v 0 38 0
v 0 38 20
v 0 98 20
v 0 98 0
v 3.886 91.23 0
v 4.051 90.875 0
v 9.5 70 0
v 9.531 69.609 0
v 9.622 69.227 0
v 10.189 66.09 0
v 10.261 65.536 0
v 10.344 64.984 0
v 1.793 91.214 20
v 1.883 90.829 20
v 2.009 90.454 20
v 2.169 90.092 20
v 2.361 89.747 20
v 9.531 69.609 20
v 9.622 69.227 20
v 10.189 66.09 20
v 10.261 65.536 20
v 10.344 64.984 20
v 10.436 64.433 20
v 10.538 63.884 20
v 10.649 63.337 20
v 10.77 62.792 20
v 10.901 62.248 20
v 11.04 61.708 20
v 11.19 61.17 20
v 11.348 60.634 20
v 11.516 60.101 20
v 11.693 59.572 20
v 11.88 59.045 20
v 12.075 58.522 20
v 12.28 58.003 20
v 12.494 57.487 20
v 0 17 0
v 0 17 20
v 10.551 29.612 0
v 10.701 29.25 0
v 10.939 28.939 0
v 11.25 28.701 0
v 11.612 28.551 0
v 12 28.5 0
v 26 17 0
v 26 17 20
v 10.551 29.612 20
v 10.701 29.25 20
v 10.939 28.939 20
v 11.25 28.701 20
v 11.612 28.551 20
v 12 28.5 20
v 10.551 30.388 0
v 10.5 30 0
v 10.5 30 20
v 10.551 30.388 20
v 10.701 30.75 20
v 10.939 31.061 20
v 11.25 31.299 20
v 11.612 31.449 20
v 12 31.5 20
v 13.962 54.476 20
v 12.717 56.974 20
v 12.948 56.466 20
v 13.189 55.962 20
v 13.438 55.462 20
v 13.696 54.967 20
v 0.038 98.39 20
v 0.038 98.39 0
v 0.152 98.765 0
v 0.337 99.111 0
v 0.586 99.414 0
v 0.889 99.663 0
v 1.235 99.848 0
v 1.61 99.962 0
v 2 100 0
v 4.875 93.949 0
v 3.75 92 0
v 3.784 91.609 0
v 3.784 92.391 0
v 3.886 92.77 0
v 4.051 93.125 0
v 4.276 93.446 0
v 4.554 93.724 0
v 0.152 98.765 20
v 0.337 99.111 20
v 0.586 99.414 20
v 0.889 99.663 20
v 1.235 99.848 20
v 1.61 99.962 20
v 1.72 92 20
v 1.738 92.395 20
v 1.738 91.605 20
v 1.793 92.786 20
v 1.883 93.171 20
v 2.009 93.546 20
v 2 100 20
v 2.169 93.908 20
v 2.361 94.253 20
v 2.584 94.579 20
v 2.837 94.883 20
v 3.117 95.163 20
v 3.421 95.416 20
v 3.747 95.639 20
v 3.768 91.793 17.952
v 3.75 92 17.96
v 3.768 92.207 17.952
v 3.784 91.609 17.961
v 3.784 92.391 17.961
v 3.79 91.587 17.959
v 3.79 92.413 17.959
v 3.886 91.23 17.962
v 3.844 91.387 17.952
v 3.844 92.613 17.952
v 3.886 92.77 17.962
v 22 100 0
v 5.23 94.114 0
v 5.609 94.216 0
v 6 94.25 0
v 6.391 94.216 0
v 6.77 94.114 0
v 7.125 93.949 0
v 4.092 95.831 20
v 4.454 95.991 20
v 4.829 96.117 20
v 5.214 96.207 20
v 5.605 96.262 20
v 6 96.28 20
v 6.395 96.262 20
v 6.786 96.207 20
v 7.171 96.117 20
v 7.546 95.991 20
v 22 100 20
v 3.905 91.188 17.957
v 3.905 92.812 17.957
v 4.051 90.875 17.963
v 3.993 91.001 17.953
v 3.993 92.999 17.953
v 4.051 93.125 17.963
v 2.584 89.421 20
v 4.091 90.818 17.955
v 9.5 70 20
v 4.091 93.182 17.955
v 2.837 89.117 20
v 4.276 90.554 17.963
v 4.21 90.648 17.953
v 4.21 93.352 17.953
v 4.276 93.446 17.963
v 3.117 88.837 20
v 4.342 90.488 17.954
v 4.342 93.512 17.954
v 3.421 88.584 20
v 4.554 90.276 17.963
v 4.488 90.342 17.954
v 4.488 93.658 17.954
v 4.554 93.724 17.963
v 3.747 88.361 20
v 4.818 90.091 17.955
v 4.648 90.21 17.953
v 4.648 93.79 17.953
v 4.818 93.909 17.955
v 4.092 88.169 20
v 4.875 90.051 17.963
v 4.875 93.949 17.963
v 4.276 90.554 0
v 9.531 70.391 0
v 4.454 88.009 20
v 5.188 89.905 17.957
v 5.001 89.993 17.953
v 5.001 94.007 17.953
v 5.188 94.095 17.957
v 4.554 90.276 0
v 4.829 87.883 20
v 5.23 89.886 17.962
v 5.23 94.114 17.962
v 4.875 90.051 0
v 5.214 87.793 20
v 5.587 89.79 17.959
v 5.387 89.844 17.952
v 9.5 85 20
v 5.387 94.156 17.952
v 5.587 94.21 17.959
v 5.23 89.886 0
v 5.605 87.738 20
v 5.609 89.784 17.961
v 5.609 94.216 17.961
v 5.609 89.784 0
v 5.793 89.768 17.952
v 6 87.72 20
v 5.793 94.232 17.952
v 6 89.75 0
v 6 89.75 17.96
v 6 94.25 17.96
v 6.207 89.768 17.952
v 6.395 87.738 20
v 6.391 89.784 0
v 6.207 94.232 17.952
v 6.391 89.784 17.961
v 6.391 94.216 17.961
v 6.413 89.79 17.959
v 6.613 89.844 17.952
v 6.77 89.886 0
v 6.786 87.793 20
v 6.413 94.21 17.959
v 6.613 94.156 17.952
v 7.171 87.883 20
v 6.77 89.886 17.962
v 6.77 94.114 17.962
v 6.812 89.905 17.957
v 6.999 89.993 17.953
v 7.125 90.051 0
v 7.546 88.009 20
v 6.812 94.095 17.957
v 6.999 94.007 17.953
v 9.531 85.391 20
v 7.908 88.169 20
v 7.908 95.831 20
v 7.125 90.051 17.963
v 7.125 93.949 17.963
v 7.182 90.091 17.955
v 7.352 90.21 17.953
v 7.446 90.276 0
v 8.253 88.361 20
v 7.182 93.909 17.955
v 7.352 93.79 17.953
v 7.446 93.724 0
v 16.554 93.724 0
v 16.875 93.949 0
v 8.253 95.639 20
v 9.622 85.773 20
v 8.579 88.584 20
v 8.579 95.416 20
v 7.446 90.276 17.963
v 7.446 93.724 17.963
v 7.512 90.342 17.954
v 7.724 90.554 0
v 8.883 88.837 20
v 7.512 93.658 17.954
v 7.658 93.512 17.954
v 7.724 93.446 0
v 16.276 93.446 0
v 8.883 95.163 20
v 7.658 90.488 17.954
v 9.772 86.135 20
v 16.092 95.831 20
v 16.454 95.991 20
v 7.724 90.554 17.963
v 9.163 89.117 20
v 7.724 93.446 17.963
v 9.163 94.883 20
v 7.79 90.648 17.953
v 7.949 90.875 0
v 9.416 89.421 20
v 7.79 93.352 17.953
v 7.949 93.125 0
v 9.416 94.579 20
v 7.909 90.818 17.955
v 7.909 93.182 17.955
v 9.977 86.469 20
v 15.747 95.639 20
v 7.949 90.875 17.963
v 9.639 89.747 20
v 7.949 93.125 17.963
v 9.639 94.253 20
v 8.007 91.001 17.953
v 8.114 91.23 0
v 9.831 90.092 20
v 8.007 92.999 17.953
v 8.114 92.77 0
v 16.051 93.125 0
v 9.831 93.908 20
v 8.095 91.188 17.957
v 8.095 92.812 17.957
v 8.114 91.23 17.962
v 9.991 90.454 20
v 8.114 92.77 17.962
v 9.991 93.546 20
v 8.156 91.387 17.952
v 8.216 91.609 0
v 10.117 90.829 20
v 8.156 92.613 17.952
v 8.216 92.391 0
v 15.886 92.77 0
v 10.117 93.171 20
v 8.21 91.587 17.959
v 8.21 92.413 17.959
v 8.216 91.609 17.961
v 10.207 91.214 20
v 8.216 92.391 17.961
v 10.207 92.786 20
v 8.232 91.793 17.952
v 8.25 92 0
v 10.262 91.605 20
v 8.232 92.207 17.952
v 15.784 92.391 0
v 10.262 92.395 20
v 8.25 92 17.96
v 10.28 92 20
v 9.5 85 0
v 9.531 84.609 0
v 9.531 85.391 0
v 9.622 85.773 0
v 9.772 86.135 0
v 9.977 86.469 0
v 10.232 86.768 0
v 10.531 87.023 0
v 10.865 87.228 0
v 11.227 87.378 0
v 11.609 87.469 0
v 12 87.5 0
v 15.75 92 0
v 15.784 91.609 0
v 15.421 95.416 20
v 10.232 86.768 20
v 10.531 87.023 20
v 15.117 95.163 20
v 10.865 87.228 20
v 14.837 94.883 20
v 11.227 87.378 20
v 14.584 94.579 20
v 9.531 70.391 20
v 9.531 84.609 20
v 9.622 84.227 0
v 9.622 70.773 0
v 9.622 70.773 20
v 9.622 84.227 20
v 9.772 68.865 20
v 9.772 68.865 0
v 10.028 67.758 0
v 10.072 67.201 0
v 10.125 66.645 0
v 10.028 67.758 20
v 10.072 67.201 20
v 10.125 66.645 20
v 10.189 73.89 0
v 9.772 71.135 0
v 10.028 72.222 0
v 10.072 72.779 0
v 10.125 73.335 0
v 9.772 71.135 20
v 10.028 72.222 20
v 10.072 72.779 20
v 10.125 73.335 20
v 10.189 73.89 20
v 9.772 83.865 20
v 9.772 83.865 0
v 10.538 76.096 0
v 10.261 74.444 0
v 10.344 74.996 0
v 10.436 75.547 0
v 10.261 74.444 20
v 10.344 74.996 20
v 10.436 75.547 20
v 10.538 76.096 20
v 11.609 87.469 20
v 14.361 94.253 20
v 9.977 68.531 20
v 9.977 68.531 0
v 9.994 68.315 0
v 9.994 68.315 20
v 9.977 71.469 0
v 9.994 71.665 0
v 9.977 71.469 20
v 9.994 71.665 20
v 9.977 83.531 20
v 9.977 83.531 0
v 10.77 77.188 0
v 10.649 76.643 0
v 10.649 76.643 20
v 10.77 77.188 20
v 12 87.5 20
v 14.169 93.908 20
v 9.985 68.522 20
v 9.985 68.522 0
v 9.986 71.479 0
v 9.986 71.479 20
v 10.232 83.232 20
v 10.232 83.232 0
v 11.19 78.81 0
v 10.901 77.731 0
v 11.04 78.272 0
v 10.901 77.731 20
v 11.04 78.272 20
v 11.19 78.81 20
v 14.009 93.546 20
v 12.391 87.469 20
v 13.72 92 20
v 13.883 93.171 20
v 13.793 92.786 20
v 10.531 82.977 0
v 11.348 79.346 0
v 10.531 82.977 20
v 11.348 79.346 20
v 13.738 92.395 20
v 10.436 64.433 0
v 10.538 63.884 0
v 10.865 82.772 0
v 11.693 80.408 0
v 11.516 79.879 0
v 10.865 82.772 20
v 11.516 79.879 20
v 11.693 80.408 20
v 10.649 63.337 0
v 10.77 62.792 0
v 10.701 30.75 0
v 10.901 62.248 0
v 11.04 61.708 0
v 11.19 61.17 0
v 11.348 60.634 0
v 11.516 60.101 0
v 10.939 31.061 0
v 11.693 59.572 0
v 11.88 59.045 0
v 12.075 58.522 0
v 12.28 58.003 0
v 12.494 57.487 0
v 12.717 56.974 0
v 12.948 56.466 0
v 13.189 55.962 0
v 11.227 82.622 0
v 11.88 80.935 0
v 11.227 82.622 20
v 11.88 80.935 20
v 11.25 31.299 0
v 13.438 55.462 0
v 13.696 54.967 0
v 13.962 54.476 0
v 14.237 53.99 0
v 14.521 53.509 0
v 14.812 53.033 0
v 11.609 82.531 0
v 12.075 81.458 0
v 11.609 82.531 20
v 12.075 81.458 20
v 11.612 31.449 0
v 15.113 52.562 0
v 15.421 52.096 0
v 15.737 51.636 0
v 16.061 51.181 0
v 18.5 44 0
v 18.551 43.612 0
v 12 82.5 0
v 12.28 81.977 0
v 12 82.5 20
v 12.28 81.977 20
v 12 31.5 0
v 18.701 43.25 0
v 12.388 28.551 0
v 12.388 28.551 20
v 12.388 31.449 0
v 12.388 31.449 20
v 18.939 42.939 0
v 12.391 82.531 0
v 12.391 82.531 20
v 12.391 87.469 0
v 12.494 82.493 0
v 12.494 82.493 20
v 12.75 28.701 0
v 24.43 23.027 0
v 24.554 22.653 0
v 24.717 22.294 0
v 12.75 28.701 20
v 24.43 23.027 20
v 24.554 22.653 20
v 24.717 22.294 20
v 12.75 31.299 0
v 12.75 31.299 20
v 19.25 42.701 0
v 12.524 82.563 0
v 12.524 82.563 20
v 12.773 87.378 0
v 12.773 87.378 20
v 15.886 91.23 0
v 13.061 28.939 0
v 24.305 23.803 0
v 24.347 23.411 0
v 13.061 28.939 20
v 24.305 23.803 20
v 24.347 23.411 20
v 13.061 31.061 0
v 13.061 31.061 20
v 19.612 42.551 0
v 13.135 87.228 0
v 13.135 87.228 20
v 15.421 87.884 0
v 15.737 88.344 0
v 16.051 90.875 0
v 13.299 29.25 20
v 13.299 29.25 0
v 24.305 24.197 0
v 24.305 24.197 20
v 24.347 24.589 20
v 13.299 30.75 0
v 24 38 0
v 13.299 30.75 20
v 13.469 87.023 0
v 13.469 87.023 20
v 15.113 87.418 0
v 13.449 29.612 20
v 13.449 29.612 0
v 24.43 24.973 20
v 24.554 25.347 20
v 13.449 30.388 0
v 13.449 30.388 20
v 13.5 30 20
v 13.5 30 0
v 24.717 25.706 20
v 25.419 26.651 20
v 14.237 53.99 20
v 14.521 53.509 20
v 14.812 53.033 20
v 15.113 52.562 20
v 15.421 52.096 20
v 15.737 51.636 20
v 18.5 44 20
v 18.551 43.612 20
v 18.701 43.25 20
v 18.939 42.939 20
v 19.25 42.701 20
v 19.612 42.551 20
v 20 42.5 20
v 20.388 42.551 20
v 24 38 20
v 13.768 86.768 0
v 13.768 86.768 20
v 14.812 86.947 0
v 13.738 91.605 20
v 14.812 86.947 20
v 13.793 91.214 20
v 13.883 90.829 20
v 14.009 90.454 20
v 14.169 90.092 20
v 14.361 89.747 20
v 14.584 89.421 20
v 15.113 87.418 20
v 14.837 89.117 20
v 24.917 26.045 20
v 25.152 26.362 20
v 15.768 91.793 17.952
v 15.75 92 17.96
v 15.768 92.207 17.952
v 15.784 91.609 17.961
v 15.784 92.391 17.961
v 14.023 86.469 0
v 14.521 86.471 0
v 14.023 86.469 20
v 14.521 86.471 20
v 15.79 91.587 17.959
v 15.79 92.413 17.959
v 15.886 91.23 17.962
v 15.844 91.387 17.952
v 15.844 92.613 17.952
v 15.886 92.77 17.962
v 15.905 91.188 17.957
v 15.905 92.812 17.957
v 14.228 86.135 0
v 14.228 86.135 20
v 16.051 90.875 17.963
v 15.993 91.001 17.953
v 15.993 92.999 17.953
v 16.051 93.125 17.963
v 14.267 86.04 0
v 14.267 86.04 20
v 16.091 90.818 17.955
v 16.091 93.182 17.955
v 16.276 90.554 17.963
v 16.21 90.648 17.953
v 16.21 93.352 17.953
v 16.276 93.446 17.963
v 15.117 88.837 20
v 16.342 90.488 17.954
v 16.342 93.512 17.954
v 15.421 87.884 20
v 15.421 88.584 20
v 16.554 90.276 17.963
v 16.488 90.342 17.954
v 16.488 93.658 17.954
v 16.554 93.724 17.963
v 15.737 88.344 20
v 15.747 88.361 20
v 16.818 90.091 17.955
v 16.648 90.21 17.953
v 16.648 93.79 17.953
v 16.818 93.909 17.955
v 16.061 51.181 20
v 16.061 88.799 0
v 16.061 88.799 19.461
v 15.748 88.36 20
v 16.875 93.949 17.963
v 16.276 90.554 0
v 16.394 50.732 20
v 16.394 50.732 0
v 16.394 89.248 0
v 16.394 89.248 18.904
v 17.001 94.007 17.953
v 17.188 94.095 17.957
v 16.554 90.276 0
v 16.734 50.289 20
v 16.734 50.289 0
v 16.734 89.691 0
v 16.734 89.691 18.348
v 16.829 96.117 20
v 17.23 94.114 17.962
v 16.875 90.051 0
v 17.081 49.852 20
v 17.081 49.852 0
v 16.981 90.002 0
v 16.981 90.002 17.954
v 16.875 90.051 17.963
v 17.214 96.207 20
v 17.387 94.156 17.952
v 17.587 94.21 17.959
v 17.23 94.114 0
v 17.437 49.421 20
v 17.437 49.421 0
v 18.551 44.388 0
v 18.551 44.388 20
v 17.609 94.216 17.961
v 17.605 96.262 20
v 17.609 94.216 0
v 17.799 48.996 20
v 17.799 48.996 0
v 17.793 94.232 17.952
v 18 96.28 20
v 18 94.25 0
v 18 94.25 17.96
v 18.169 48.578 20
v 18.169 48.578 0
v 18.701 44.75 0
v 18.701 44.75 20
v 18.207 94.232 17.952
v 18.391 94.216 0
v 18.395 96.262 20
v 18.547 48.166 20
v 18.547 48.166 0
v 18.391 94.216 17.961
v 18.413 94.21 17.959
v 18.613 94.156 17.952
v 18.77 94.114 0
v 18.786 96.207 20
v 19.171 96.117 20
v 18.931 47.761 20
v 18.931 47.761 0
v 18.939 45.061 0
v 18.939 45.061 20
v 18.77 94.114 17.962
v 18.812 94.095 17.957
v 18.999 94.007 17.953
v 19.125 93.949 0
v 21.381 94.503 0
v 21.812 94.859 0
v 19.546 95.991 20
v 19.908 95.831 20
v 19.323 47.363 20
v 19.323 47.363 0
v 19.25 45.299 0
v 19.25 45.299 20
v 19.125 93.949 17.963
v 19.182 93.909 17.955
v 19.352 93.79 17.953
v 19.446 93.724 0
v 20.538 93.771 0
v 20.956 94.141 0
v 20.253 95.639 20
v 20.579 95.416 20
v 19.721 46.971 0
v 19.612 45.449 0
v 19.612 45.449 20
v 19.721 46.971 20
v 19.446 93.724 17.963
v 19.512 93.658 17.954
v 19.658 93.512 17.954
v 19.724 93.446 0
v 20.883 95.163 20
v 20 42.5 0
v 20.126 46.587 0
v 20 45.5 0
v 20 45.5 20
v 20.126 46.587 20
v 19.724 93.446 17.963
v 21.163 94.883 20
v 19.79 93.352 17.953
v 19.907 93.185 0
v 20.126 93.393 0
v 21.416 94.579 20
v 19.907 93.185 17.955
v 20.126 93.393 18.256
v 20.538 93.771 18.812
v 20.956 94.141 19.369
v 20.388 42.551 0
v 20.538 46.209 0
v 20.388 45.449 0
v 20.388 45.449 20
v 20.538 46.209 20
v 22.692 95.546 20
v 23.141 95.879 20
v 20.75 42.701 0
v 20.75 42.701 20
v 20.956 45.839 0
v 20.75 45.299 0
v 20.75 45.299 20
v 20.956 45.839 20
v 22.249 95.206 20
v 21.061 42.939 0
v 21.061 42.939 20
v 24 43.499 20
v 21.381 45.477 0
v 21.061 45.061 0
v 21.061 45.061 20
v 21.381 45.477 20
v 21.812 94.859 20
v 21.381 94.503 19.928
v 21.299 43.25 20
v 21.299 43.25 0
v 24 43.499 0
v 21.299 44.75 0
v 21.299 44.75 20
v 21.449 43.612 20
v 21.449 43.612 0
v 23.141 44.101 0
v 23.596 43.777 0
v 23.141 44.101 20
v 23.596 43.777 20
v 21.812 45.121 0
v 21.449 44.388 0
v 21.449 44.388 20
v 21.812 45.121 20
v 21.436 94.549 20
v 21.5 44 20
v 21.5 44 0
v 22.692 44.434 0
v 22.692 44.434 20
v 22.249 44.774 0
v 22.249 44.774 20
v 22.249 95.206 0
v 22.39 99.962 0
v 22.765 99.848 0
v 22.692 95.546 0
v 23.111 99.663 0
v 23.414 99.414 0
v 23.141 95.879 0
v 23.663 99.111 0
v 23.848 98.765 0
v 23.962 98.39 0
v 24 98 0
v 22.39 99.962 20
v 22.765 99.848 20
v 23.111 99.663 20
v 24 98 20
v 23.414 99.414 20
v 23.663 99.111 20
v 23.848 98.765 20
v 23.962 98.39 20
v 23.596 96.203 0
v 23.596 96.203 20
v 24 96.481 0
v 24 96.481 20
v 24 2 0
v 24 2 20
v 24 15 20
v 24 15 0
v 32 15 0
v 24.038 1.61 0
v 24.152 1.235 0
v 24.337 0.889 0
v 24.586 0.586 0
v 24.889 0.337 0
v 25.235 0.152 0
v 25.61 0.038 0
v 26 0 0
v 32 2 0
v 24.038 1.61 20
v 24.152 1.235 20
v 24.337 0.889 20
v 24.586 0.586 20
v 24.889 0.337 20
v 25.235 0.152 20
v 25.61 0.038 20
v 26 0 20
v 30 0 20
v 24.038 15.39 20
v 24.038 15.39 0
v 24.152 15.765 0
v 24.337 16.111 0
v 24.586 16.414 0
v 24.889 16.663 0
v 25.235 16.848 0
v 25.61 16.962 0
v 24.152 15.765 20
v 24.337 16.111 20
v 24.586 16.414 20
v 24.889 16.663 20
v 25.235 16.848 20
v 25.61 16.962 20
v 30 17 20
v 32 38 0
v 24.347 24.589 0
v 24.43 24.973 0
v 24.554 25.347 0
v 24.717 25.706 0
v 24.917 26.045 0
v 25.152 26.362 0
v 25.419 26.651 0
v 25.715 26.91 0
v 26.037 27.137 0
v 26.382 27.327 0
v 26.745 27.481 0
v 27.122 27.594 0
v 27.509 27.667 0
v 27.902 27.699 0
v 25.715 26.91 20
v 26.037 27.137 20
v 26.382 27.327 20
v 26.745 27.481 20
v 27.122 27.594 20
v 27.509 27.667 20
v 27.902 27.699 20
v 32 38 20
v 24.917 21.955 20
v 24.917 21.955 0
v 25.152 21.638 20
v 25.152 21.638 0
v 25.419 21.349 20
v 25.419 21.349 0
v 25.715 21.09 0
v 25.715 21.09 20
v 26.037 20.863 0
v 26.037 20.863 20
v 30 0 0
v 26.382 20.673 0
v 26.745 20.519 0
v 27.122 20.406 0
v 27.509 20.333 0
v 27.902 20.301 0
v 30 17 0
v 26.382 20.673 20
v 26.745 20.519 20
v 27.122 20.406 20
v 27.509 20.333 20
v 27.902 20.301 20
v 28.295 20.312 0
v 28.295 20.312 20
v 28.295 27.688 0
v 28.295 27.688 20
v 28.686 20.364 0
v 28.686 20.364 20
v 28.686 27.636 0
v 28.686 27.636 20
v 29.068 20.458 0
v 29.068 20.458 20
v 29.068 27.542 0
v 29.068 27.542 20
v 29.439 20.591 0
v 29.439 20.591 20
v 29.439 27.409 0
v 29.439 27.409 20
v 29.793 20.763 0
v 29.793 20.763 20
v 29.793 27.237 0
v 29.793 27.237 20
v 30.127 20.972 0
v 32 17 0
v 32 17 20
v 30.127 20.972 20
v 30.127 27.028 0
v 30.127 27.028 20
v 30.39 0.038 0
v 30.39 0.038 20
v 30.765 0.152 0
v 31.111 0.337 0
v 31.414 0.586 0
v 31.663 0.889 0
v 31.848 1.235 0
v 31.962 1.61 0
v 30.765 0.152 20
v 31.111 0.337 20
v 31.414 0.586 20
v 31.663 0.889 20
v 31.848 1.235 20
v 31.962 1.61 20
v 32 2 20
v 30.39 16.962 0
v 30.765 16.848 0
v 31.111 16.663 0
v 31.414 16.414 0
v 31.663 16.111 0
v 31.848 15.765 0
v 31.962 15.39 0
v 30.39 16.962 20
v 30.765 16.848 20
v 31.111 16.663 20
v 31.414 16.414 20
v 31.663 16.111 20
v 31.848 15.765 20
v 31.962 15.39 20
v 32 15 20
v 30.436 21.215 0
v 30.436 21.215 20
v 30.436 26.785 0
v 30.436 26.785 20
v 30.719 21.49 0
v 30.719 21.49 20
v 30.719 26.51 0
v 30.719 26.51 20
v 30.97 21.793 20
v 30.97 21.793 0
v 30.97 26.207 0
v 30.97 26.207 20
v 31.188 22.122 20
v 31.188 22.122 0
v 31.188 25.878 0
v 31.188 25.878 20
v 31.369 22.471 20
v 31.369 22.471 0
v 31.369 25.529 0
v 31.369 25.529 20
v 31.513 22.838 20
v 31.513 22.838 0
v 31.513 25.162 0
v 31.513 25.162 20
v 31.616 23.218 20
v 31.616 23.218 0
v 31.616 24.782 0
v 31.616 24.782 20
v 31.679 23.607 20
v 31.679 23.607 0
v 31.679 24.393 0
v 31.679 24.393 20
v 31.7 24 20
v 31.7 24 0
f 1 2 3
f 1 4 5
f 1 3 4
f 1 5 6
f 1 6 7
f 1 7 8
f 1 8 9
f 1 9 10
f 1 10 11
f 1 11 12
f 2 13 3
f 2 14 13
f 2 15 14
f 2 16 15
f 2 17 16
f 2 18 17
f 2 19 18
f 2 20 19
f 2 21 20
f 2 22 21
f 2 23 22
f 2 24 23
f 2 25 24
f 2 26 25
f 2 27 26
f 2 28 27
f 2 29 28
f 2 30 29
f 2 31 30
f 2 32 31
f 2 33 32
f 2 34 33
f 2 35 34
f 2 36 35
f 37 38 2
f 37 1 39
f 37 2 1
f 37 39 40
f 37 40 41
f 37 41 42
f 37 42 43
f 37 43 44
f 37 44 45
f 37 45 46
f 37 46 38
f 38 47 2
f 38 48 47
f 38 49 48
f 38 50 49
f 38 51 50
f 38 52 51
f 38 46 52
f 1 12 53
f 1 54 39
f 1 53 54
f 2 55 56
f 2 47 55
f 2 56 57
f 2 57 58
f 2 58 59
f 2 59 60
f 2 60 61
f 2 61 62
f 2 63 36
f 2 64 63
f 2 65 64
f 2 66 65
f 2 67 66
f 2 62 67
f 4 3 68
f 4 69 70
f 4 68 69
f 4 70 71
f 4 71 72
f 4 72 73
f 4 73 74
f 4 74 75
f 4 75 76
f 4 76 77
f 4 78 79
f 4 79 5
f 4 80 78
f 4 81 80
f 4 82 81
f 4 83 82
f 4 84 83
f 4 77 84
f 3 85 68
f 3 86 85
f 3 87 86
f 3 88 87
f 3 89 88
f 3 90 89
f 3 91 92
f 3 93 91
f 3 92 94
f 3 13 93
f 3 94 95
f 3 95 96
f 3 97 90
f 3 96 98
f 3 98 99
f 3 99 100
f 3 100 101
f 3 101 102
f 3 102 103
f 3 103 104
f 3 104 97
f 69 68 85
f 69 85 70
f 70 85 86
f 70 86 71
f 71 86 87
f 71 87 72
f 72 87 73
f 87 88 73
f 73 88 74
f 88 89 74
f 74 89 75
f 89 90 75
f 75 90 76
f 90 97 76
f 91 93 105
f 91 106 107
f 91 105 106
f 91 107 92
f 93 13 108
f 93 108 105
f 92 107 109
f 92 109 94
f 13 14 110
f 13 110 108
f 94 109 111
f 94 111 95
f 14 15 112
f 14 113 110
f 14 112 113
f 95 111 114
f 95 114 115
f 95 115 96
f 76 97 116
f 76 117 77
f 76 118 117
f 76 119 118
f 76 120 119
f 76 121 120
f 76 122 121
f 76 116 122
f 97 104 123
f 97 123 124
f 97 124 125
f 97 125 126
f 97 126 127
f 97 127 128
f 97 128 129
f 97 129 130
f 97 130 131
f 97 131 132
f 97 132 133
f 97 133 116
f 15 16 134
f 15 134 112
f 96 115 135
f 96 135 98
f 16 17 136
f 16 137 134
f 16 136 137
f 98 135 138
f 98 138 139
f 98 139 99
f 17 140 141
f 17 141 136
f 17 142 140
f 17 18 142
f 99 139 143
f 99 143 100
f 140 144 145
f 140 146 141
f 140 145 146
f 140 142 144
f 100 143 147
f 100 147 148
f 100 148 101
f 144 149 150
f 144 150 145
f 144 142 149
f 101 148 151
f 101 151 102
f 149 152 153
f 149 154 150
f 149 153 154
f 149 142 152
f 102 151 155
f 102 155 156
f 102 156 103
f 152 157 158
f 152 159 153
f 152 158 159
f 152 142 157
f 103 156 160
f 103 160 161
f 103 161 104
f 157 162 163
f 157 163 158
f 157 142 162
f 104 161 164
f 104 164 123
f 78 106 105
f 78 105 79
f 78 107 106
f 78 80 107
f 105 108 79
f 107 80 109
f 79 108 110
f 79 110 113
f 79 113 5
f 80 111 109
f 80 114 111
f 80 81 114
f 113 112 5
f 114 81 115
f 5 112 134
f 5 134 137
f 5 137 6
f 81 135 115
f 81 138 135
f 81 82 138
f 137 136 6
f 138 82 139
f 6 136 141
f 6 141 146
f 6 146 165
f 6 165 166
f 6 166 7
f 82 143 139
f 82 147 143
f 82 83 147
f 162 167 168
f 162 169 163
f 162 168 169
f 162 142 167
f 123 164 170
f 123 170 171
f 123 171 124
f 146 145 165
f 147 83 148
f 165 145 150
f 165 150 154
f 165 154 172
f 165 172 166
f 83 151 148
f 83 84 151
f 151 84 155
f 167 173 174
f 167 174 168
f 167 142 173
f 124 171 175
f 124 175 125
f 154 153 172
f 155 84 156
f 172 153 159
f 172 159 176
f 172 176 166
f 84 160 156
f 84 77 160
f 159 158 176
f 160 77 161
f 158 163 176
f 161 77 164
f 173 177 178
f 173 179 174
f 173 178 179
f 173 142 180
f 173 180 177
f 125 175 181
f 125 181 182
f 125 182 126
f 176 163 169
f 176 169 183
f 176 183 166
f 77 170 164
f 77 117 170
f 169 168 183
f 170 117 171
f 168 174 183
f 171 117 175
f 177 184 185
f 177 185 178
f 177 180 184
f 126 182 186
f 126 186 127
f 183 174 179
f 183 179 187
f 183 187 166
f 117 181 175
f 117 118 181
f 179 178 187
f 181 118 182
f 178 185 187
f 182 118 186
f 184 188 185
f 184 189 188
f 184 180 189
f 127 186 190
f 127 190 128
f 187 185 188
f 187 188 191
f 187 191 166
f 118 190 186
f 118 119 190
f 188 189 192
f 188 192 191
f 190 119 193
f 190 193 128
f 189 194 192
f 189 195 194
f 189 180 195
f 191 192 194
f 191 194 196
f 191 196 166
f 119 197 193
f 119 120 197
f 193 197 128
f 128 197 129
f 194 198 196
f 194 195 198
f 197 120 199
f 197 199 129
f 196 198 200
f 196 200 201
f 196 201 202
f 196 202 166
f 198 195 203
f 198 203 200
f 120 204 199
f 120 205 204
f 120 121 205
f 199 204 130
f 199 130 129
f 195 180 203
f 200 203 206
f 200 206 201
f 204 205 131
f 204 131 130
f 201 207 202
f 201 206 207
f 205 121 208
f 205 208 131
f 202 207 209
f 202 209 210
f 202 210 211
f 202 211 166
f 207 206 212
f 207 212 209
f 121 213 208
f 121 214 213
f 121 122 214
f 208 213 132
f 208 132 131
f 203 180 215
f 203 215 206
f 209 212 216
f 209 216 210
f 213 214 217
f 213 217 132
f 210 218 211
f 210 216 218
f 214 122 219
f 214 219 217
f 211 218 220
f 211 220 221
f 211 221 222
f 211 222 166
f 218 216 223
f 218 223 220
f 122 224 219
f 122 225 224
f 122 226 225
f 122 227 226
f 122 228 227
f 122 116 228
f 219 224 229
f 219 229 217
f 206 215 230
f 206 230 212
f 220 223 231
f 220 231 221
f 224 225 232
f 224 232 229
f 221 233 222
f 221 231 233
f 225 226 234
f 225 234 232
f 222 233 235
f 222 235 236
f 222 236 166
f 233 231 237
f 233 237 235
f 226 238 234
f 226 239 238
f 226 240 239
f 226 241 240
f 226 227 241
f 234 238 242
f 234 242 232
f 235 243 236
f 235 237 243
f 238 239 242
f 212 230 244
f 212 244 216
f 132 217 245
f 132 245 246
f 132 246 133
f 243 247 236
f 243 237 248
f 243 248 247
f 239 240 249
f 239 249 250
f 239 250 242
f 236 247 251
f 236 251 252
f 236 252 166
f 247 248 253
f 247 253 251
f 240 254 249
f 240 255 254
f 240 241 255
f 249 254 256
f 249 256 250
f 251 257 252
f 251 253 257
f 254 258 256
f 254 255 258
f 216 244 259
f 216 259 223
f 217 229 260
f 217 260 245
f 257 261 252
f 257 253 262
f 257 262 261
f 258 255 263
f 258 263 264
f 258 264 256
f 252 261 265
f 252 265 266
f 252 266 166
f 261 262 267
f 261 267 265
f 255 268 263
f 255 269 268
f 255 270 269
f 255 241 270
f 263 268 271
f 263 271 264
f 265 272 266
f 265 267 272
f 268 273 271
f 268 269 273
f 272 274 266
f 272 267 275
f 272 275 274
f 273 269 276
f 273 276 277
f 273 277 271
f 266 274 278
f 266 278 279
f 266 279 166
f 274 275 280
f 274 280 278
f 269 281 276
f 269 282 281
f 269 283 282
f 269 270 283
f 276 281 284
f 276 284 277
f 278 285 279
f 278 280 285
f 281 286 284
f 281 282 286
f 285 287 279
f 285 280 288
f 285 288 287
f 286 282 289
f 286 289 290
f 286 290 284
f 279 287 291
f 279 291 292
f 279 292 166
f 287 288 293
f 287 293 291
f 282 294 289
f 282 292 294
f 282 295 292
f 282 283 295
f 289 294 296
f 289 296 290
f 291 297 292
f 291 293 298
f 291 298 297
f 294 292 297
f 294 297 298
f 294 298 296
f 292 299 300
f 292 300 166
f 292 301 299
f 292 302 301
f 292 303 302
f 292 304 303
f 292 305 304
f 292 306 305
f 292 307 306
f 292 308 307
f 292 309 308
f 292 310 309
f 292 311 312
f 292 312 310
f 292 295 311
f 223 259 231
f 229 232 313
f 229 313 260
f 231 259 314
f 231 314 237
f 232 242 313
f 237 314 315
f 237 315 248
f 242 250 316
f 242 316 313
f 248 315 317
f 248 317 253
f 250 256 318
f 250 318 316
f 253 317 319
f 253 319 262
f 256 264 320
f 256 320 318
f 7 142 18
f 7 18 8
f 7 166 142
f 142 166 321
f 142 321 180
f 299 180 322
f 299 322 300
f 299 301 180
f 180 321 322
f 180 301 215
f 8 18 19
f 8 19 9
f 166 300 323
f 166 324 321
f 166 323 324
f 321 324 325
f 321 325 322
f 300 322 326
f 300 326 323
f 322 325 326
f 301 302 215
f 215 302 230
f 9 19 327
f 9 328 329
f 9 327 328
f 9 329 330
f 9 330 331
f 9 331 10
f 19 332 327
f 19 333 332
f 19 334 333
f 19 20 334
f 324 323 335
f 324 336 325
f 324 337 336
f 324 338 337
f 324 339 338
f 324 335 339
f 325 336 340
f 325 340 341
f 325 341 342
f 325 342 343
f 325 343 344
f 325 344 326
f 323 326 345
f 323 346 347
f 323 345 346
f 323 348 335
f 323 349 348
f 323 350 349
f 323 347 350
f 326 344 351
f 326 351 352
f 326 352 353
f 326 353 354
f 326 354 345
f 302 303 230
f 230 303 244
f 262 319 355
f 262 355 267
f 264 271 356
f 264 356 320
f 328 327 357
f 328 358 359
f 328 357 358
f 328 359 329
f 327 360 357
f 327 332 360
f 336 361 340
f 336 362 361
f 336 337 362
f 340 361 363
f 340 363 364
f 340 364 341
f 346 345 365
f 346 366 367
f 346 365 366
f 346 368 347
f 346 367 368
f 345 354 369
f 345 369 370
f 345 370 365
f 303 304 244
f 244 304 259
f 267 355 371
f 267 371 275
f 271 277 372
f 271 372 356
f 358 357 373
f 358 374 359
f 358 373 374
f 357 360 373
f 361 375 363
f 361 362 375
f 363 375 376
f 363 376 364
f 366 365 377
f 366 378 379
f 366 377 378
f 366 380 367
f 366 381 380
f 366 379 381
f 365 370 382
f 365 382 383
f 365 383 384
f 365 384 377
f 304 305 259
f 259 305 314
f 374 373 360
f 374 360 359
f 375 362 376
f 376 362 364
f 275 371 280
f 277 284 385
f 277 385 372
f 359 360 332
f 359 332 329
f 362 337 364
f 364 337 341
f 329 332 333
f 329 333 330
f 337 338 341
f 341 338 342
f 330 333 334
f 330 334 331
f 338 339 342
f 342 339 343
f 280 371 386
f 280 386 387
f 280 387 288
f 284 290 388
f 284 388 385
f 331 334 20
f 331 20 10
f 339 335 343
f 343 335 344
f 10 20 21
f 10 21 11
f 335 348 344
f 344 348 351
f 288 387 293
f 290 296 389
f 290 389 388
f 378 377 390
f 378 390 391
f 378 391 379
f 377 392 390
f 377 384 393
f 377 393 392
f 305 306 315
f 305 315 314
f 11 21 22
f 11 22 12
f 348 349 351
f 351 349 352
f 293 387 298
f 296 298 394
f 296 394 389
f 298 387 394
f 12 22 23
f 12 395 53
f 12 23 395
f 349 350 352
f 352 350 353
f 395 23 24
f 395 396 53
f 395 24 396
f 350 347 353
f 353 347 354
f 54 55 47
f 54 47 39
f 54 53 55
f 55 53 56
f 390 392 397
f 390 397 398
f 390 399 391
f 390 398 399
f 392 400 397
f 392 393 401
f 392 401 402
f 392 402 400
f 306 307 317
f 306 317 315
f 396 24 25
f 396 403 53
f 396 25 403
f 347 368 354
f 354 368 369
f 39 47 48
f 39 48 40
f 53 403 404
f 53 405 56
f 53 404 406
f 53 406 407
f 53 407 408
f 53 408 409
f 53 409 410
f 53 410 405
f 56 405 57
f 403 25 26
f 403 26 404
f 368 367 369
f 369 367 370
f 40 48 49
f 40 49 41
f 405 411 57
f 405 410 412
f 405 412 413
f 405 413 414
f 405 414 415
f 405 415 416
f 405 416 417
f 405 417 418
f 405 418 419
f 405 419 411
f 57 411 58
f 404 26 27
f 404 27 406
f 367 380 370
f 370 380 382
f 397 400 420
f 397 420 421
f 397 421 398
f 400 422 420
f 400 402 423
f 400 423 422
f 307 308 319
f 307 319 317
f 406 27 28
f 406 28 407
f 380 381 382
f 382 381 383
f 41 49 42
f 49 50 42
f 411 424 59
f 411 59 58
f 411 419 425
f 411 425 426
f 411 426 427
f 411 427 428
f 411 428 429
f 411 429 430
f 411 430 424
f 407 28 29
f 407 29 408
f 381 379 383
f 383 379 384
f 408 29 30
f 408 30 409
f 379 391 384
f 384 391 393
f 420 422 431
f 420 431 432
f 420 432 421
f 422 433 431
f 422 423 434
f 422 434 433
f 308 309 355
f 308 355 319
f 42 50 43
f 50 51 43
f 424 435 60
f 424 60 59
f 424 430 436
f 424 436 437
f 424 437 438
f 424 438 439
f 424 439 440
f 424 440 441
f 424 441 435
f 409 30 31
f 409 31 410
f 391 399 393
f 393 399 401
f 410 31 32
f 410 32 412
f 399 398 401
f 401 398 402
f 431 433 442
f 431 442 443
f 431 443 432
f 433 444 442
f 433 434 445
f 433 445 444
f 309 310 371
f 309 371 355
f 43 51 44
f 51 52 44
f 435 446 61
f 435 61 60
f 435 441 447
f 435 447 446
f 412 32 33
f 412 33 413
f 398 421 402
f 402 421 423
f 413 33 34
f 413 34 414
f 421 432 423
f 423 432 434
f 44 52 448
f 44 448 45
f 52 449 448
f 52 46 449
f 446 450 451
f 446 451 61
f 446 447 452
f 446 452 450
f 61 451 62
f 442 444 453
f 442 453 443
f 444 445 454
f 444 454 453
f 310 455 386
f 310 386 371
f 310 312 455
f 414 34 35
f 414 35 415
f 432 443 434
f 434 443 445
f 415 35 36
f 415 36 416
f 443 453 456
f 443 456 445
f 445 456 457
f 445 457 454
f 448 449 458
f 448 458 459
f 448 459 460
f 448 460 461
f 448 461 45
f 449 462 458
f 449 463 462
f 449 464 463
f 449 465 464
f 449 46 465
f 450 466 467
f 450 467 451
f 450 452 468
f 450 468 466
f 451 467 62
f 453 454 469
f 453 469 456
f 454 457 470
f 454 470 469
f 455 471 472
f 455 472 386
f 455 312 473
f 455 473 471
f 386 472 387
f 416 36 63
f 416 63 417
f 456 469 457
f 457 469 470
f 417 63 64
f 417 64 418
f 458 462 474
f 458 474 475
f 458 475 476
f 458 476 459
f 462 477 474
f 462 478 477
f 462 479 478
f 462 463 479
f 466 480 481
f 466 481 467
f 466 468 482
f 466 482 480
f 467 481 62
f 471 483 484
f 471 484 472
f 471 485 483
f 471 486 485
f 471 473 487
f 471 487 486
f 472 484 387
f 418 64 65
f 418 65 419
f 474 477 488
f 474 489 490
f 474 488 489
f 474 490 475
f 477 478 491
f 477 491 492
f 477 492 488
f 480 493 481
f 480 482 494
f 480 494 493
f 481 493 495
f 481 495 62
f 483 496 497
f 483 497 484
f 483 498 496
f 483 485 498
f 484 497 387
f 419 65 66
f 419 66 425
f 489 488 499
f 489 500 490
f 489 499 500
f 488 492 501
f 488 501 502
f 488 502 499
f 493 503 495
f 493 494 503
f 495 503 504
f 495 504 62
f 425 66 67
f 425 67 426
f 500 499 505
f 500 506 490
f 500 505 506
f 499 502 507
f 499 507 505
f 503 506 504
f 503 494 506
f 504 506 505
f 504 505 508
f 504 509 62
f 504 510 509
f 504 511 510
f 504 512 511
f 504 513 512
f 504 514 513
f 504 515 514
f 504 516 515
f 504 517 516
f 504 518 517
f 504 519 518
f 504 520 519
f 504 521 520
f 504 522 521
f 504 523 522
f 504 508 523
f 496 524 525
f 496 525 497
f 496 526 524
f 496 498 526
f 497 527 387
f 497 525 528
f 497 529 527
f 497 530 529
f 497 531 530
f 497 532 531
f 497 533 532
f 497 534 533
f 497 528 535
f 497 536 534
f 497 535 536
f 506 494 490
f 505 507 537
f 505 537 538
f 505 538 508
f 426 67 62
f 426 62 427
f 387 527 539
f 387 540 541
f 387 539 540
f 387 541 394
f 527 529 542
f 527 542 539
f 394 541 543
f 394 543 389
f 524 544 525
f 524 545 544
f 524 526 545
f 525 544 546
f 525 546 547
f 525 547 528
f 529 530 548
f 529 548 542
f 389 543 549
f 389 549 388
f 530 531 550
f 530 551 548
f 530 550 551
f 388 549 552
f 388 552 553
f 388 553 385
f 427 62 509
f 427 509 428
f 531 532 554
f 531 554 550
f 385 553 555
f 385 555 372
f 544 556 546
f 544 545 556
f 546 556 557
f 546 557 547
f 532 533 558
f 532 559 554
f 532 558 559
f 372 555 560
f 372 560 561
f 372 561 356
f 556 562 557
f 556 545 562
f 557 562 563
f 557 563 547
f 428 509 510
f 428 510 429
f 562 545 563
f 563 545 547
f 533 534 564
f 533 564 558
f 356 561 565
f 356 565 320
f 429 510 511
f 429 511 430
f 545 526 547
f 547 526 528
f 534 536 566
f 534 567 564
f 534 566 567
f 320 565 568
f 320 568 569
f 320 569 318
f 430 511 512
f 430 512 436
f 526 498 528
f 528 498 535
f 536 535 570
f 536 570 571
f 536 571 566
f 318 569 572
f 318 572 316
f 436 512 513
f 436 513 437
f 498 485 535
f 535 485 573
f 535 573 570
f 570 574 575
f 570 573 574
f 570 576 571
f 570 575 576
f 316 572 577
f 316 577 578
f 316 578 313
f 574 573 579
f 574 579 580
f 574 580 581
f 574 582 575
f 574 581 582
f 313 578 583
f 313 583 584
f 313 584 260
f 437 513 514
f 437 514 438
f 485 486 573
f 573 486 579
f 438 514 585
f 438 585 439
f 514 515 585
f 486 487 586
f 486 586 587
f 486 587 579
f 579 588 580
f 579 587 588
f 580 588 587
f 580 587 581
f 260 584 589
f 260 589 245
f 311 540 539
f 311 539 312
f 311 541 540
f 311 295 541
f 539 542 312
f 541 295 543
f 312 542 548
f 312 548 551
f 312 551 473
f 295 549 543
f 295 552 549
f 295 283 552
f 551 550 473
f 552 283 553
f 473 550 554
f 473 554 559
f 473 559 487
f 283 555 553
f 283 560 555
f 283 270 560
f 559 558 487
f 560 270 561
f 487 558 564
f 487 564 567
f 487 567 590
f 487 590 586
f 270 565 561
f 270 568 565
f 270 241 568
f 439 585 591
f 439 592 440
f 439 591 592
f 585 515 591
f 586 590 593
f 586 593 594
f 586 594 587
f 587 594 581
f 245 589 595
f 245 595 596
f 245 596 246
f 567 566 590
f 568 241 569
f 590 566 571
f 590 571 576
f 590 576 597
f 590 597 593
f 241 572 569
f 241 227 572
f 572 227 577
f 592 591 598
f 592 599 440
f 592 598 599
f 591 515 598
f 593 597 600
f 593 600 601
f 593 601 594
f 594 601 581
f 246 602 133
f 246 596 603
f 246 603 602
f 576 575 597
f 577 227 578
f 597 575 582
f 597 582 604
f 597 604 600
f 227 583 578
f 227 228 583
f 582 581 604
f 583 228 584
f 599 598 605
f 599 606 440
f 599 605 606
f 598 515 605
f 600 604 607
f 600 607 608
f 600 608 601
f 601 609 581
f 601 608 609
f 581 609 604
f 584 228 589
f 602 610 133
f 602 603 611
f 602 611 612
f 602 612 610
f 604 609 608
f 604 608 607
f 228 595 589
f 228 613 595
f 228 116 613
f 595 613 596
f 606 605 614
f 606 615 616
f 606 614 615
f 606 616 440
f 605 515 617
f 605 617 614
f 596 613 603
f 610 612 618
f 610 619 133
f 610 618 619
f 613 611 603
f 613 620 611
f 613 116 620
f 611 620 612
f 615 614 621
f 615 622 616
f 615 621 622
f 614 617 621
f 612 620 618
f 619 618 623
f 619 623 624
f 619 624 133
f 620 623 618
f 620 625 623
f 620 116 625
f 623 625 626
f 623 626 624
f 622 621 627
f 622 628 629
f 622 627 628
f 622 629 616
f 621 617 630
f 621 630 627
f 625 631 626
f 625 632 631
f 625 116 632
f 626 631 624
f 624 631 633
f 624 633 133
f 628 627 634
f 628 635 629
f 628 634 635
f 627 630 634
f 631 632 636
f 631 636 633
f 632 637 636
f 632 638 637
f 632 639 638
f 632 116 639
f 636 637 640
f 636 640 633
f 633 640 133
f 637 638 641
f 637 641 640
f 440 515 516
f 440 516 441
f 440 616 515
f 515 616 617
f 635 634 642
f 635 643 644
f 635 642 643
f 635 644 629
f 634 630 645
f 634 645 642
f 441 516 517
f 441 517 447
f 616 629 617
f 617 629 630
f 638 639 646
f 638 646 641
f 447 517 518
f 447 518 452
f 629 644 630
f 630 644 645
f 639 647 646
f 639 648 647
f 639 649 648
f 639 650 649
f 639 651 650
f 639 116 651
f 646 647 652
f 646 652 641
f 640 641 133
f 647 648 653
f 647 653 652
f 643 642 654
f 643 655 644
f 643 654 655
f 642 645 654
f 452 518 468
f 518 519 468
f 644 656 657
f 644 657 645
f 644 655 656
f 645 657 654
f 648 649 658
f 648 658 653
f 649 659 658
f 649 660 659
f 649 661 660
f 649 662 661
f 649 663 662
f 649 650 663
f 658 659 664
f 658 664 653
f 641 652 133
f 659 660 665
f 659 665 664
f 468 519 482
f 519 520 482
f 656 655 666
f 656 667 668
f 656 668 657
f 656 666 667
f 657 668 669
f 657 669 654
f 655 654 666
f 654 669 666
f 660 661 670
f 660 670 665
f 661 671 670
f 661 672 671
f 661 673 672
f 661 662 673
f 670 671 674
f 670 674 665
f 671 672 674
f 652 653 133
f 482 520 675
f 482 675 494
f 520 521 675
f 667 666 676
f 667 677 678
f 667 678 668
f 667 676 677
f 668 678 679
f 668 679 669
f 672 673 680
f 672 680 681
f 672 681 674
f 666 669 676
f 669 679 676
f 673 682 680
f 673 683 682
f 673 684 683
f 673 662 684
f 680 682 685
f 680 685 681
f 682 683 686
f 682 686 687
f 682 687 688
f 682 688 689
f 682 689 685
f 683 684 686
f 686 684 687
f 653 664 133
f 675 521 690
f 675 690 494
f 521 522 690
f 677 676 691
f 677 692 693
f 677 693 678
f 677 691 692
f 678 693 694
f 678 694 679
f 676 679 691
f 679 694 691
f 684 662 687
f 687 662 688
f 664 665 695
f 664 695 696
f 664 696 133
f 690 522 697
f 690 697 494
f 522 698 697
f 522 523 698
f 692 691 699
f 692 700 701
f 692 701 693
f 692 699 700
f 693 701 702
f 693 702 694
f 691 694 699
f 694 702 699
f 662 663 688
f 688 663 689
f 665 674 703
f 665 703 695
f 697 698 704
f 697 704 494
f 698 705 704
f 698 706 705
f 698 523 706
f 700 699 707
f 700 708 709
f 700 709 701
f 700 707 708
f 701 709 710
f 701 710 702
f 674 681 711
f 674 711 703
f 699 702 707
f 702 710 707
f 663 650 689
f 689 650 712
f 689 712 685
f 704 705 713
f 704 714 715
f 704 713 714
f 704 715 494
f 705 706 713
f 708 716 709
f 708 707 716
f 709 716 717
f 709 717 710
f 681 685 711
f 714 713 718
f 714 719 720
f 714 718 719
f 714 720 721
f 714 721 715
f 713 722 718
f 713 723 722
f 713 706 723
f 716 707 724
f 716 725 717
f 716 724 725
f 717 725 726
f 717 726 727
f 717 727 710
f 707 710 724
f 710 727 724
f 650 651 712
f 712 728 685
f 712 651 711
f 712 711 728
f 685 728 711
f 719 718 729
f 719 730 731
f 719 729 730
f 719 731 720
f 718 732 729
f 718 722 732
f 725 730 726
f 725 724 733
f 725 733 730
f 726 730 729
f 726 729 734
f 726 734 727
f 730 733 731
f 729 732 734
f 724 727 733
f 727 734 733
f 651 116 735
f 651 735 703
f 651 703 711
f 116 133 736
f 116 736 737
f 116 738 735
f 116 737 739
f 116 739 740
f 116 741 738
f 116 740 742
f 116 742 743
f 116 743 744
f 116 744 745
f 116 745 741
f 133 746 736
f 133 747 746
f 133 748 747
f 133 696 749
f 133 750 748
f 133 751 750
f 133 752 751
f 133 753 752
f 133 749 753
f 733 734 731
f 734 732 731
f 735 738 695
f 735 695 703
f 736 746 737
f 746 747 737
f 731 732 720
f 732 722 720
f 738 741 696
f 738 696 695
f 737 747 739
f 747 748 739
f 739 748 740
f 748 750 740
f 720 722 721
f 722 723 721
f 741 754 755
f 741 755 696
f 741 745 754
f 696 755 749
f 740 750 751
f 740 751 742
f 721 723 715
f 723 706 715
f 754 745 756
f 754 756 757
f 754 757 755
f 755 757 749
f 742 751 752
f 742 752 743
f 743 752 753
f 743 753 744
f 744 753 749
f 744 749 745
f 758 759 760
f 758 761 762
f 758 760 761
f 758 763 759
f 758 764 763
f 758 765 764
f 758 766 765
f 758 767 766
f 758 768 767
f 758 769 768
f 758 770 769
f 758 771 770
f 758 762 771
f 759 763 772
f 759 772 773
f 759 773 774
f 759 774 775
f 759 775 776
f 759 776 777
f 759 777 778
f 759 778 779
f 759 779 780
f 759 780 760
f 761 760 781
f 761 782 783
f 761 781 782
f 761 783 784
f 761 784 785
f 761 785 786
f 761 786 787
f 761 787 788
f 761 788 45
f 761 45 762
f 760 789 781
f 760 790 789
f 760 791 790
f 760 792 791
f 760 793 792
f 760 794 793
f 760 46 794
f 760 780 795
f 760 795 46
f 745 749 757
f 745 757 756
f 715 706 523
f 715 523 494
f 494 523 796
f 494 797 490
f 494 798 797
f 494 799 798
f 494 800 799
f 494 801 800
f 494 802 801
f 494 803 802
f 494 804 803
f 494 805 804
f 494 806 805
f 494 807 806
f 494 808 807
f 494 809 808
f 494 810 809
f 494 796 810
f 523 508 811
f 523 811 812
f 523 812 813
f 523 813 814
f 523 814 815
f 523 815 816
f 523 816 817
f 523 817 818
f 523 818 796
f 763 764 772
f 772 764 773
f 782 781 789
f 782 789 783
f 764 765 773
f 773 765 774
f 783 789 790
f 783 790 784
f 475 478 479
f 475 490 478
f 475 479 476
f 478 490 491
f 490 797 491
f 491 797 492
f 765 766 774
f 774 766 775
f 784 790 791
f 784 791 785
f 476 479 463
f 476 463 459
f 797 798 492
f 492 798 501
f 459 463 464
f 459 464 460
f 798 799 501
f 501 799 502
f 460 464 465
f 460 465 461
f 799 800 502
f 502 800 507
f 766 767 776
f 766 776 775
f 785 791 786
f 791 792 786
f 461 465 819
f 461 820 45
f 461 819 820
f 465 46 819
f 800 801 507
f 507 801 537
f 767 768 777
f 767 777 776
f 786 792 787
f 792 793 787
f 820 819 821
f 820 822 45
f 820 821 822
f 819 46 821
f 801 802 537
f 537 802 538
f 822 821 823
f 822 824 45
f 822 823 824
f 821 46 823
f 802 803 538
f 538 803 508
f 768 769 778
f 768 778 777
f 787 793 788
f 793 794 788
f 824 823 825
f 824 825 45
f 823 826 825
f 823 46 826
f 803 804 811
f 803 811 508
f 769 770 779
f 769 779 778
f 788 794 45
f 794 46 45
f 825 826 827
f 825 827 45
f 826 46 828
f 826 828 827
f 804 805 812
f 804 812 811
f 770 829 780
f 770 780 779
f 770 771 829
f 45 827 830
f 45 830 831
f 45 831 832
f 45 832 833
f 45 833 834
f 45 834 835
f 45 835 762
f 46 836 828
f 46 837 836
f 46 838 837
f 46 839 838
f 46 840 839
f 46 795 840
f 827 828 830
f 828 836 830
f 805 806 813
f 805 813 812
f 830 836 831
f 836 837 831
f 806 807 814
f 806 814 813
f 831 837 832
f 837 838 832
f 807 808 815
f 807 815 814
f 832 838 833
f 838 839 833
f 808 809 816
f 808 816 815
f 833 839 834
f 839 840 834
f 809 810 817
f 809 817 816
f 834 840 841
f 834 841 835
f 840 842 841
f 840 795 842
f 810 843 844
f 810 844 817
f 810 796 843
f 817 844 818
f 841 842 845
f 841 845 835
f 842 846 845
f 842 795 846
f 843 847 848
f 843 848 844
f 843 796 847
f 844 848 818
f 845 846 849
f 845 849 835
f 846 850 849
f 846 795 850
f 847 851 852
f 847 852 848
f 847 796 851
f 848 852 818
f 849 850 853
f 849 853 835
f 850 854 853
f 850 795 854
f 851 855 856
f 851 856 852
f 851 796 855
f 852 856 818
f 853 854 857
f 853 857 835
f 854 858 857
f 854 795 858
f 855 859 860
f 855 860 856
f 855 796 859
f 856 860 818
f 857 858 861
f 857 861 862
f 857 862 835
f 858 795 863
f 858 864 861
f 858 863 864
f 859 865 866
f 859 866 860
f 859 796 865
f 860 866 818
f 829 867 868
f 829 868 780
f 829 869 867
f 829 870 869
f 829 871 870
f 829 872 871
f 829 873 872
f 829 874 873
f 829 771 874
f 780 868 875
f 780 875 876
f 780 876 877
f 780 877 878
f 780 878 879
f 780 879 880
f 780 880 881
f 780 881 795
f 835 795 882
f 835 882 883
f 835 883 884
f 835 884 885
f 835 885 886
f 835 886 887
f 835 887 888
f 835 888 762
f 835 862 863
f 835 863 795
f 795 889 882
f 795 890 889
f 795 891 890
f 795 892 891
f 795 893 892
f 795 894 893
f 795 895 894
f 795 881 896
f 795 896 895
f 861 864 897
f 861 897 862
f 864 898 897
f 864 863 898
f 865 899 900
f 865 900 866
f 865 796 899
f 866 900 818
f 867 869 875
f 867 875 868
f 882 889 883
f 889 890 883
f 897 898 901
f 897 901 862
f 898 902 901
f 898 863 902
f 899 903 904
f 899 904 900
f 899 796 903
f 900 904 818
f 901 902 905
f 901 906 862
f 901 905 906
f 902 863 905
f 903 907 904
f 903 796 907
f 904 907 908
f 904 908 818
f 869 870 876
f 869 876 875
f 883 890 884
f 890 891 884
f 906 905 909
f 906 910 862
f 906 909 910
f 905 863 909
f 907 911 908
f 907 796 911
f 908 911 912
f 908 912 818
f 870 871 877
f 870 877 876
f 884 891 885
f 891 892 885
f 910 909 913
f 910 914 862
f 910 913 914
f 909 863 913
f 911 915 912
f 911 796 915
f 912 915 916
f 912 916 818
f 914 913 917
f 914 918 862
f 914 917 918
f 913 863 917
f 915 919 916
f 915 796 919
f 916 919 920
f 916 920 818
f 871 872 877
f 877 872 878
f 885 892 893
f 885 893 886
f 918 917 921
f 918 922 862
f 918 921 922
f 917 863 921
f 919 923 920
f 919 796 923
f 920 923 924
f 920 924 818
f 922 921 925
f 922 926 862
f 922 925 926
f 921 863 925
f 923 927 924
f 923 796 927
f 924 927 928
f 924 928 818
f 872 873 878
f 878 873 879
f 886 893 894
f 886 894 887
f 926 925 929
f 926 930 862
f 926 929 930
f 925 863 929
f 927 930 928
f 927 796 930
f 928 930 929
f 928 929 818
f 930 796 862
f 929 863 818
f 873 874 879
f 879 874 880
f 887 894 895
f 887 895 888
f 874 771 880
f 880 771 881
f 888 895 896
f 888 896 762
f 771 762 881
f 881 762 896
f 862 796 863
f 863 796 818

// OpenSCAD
// ROBI3-W002-00-09  电动夹 (electric gripper finger)
// Material: AL6061  | Scale: 1:1 | Drawing wt 0.029 kg
// Reconstructed from the blueprint PDF (vector + dimensions).
// Confirmed overall: 100 (Y) x 32 (X) x 20 (Z thickness) mm.
// Geometry basis (front view = extrusion profile, extruded 20 mm in Z):
//   - 4-R2 fillets, R32 jaw arc (center off the upper-right corner)
//   - 8 mm wide mounting tab offset 24 mm from left edge, 17 mm tall
//   - mid full-width block 32 x 21; upper body 24 x 62 with R32 jaw cut
// NOTE: a few hole X/Y positions are inferred from witness/centre lines and
//       should be verified against the drawing.

$fa = 1; $fs = 0.4;

// ---- confirmed dimensions -------------------------------------------------
L      = 100;   // overall length / height (Y)
W      = 32;    // overall width (X)
T      = 20;    // thickness (Z)
body_w = 24;    // body width
tab_w  = 8;     // mounting tab width   (W - body_w)
tab_h  = 17;    // mounting tab protrusion (below body)
mid_h  = 21;    // full-width block height (tab top -> jaw body bottom)
jaw_h  = 62;    // upper body height (= L - tab_h - mid_h)
R32    = 32;    // jaw radius
R2     = 2;     // corner fillets
// R32 arc centre in the (X 0..32, Y 0..100) front face, mm:
jaw_cx = 41.95;
jaw_cy = 69.99;

// ---- hole features (Ø mm, positions inferred; verify) ---------------------
d_45   = 4.50;  // 2x thru, 12 mm spacing, Ø8.6 x 90° countersink
d_cs   = 8.60;
d_m6   = 5.0;   // M6-6H tapped minor Ø approx (thru)
d_5    = 5.0;   // 5 thru
d_3    = 3.0;   // 2x thru
d_34   = 3.40;  // blind deep 8
d_34_d = 8;
d_74   = 7.40;  // hole / counterbore related (verify)

module profile() {
  // upper body: body_w x jaw_h, R2 filleted top corners, minus R32 jaw bite
  translate([0, tab_h + mid_h])
    difference() {
      frect(body_w, jaw_h, R2, true, true, false, false); // fillet TL & TR only
      translate([jaw_cx - 0, jaw_cy - (tab_h + mid_h)]) circle(R32);
    }
  // mid full-width block: W x mid_h, sharp outer corners (step fillets handled visually)
  translate([0, tab_h]) square([W, mid_h]);
  // mounting tab: tab_w x tab_h, R2 at all corners
  translate([body_w, 0]) frect(tab_w, tab_h, R2, true, true, true, true);
}

// filleted rectangle w x h, origin at (0,0). TL TR BL BR flags select corners.
module frect(w, h, r, fTL=true, fTR=true, fBL=true, fBR=true) {
  hull() {
    if (fBL) translate([r,   r])   circle(r); else translate([0,0])     square(0.001,center=true);
    if (fBR) translate([w-r, r])  circle(r); else translate([w,0])     square(0.001,center=true);
    if (fTL) translate([r,   h-r]) circle(r); else translate([0,h])    square(0.001,center=true);
    if (fTR) translate([w-r, h-r]) circle(r); else translate([w,h])    square(0.001,center=true);
  }
}

module countersink(d_thru, d_head, h) {
  // thru hole
  translate([0,0,-0.01]) cylinder(h=h+0.02, d=d_thru);
  // 90° included countersink sunk into the top (Z=h) face: radius head_r at face -> 0 at depth head_r
  r = d_head/2;
  translate([0,0, h - r]) cylinder(h=r+0.02, r1=0, r2=r);
}

module thru(d, h) translate([0,0,-0.01]) cylinder(h=h+0.02, d=d);
module blind(d, depth, h) translate([0,0,h-depth]) cylinder(h=depth+0.01, d=d);

module holes() {
  // 2x Ø4.5 thru + Ø8.6x90° countersink, 12 mm spacing, near jaw tip (top)
  for (x = [12 - 6, 12 + 6])
    translate([x, 92, 0]) countersink(d_45, d_cs, T);
  // M6-6H tapped thru (modelled at minor Ø)
  translate([12, 70, 0]) thru(d_m6, T);
  // Ø5 thru
  translate([12, 85, 0]) thru(d_5, T);
  // 2x Ø3 thru near the R2 step
  translate([20, 44, 0]) thru(d_3, T);
  translate([12, 30, 0]) thru(d_3, T);
  // Ø3.4 blind 8 mm deep (from face Z=0)
  translate([12, 12, 0]) blind(d_34, d_34_d, T);
  // Ø7.4 related (verify) — represented as a clearance thru
  translate([28, 24, 0]) thru(d_74, T);
}

module robi3_w002_00_09() {
  difference() {
    linear_extrude(T) profile();
    holes();
  }
}

robi3_w002_00_09();
